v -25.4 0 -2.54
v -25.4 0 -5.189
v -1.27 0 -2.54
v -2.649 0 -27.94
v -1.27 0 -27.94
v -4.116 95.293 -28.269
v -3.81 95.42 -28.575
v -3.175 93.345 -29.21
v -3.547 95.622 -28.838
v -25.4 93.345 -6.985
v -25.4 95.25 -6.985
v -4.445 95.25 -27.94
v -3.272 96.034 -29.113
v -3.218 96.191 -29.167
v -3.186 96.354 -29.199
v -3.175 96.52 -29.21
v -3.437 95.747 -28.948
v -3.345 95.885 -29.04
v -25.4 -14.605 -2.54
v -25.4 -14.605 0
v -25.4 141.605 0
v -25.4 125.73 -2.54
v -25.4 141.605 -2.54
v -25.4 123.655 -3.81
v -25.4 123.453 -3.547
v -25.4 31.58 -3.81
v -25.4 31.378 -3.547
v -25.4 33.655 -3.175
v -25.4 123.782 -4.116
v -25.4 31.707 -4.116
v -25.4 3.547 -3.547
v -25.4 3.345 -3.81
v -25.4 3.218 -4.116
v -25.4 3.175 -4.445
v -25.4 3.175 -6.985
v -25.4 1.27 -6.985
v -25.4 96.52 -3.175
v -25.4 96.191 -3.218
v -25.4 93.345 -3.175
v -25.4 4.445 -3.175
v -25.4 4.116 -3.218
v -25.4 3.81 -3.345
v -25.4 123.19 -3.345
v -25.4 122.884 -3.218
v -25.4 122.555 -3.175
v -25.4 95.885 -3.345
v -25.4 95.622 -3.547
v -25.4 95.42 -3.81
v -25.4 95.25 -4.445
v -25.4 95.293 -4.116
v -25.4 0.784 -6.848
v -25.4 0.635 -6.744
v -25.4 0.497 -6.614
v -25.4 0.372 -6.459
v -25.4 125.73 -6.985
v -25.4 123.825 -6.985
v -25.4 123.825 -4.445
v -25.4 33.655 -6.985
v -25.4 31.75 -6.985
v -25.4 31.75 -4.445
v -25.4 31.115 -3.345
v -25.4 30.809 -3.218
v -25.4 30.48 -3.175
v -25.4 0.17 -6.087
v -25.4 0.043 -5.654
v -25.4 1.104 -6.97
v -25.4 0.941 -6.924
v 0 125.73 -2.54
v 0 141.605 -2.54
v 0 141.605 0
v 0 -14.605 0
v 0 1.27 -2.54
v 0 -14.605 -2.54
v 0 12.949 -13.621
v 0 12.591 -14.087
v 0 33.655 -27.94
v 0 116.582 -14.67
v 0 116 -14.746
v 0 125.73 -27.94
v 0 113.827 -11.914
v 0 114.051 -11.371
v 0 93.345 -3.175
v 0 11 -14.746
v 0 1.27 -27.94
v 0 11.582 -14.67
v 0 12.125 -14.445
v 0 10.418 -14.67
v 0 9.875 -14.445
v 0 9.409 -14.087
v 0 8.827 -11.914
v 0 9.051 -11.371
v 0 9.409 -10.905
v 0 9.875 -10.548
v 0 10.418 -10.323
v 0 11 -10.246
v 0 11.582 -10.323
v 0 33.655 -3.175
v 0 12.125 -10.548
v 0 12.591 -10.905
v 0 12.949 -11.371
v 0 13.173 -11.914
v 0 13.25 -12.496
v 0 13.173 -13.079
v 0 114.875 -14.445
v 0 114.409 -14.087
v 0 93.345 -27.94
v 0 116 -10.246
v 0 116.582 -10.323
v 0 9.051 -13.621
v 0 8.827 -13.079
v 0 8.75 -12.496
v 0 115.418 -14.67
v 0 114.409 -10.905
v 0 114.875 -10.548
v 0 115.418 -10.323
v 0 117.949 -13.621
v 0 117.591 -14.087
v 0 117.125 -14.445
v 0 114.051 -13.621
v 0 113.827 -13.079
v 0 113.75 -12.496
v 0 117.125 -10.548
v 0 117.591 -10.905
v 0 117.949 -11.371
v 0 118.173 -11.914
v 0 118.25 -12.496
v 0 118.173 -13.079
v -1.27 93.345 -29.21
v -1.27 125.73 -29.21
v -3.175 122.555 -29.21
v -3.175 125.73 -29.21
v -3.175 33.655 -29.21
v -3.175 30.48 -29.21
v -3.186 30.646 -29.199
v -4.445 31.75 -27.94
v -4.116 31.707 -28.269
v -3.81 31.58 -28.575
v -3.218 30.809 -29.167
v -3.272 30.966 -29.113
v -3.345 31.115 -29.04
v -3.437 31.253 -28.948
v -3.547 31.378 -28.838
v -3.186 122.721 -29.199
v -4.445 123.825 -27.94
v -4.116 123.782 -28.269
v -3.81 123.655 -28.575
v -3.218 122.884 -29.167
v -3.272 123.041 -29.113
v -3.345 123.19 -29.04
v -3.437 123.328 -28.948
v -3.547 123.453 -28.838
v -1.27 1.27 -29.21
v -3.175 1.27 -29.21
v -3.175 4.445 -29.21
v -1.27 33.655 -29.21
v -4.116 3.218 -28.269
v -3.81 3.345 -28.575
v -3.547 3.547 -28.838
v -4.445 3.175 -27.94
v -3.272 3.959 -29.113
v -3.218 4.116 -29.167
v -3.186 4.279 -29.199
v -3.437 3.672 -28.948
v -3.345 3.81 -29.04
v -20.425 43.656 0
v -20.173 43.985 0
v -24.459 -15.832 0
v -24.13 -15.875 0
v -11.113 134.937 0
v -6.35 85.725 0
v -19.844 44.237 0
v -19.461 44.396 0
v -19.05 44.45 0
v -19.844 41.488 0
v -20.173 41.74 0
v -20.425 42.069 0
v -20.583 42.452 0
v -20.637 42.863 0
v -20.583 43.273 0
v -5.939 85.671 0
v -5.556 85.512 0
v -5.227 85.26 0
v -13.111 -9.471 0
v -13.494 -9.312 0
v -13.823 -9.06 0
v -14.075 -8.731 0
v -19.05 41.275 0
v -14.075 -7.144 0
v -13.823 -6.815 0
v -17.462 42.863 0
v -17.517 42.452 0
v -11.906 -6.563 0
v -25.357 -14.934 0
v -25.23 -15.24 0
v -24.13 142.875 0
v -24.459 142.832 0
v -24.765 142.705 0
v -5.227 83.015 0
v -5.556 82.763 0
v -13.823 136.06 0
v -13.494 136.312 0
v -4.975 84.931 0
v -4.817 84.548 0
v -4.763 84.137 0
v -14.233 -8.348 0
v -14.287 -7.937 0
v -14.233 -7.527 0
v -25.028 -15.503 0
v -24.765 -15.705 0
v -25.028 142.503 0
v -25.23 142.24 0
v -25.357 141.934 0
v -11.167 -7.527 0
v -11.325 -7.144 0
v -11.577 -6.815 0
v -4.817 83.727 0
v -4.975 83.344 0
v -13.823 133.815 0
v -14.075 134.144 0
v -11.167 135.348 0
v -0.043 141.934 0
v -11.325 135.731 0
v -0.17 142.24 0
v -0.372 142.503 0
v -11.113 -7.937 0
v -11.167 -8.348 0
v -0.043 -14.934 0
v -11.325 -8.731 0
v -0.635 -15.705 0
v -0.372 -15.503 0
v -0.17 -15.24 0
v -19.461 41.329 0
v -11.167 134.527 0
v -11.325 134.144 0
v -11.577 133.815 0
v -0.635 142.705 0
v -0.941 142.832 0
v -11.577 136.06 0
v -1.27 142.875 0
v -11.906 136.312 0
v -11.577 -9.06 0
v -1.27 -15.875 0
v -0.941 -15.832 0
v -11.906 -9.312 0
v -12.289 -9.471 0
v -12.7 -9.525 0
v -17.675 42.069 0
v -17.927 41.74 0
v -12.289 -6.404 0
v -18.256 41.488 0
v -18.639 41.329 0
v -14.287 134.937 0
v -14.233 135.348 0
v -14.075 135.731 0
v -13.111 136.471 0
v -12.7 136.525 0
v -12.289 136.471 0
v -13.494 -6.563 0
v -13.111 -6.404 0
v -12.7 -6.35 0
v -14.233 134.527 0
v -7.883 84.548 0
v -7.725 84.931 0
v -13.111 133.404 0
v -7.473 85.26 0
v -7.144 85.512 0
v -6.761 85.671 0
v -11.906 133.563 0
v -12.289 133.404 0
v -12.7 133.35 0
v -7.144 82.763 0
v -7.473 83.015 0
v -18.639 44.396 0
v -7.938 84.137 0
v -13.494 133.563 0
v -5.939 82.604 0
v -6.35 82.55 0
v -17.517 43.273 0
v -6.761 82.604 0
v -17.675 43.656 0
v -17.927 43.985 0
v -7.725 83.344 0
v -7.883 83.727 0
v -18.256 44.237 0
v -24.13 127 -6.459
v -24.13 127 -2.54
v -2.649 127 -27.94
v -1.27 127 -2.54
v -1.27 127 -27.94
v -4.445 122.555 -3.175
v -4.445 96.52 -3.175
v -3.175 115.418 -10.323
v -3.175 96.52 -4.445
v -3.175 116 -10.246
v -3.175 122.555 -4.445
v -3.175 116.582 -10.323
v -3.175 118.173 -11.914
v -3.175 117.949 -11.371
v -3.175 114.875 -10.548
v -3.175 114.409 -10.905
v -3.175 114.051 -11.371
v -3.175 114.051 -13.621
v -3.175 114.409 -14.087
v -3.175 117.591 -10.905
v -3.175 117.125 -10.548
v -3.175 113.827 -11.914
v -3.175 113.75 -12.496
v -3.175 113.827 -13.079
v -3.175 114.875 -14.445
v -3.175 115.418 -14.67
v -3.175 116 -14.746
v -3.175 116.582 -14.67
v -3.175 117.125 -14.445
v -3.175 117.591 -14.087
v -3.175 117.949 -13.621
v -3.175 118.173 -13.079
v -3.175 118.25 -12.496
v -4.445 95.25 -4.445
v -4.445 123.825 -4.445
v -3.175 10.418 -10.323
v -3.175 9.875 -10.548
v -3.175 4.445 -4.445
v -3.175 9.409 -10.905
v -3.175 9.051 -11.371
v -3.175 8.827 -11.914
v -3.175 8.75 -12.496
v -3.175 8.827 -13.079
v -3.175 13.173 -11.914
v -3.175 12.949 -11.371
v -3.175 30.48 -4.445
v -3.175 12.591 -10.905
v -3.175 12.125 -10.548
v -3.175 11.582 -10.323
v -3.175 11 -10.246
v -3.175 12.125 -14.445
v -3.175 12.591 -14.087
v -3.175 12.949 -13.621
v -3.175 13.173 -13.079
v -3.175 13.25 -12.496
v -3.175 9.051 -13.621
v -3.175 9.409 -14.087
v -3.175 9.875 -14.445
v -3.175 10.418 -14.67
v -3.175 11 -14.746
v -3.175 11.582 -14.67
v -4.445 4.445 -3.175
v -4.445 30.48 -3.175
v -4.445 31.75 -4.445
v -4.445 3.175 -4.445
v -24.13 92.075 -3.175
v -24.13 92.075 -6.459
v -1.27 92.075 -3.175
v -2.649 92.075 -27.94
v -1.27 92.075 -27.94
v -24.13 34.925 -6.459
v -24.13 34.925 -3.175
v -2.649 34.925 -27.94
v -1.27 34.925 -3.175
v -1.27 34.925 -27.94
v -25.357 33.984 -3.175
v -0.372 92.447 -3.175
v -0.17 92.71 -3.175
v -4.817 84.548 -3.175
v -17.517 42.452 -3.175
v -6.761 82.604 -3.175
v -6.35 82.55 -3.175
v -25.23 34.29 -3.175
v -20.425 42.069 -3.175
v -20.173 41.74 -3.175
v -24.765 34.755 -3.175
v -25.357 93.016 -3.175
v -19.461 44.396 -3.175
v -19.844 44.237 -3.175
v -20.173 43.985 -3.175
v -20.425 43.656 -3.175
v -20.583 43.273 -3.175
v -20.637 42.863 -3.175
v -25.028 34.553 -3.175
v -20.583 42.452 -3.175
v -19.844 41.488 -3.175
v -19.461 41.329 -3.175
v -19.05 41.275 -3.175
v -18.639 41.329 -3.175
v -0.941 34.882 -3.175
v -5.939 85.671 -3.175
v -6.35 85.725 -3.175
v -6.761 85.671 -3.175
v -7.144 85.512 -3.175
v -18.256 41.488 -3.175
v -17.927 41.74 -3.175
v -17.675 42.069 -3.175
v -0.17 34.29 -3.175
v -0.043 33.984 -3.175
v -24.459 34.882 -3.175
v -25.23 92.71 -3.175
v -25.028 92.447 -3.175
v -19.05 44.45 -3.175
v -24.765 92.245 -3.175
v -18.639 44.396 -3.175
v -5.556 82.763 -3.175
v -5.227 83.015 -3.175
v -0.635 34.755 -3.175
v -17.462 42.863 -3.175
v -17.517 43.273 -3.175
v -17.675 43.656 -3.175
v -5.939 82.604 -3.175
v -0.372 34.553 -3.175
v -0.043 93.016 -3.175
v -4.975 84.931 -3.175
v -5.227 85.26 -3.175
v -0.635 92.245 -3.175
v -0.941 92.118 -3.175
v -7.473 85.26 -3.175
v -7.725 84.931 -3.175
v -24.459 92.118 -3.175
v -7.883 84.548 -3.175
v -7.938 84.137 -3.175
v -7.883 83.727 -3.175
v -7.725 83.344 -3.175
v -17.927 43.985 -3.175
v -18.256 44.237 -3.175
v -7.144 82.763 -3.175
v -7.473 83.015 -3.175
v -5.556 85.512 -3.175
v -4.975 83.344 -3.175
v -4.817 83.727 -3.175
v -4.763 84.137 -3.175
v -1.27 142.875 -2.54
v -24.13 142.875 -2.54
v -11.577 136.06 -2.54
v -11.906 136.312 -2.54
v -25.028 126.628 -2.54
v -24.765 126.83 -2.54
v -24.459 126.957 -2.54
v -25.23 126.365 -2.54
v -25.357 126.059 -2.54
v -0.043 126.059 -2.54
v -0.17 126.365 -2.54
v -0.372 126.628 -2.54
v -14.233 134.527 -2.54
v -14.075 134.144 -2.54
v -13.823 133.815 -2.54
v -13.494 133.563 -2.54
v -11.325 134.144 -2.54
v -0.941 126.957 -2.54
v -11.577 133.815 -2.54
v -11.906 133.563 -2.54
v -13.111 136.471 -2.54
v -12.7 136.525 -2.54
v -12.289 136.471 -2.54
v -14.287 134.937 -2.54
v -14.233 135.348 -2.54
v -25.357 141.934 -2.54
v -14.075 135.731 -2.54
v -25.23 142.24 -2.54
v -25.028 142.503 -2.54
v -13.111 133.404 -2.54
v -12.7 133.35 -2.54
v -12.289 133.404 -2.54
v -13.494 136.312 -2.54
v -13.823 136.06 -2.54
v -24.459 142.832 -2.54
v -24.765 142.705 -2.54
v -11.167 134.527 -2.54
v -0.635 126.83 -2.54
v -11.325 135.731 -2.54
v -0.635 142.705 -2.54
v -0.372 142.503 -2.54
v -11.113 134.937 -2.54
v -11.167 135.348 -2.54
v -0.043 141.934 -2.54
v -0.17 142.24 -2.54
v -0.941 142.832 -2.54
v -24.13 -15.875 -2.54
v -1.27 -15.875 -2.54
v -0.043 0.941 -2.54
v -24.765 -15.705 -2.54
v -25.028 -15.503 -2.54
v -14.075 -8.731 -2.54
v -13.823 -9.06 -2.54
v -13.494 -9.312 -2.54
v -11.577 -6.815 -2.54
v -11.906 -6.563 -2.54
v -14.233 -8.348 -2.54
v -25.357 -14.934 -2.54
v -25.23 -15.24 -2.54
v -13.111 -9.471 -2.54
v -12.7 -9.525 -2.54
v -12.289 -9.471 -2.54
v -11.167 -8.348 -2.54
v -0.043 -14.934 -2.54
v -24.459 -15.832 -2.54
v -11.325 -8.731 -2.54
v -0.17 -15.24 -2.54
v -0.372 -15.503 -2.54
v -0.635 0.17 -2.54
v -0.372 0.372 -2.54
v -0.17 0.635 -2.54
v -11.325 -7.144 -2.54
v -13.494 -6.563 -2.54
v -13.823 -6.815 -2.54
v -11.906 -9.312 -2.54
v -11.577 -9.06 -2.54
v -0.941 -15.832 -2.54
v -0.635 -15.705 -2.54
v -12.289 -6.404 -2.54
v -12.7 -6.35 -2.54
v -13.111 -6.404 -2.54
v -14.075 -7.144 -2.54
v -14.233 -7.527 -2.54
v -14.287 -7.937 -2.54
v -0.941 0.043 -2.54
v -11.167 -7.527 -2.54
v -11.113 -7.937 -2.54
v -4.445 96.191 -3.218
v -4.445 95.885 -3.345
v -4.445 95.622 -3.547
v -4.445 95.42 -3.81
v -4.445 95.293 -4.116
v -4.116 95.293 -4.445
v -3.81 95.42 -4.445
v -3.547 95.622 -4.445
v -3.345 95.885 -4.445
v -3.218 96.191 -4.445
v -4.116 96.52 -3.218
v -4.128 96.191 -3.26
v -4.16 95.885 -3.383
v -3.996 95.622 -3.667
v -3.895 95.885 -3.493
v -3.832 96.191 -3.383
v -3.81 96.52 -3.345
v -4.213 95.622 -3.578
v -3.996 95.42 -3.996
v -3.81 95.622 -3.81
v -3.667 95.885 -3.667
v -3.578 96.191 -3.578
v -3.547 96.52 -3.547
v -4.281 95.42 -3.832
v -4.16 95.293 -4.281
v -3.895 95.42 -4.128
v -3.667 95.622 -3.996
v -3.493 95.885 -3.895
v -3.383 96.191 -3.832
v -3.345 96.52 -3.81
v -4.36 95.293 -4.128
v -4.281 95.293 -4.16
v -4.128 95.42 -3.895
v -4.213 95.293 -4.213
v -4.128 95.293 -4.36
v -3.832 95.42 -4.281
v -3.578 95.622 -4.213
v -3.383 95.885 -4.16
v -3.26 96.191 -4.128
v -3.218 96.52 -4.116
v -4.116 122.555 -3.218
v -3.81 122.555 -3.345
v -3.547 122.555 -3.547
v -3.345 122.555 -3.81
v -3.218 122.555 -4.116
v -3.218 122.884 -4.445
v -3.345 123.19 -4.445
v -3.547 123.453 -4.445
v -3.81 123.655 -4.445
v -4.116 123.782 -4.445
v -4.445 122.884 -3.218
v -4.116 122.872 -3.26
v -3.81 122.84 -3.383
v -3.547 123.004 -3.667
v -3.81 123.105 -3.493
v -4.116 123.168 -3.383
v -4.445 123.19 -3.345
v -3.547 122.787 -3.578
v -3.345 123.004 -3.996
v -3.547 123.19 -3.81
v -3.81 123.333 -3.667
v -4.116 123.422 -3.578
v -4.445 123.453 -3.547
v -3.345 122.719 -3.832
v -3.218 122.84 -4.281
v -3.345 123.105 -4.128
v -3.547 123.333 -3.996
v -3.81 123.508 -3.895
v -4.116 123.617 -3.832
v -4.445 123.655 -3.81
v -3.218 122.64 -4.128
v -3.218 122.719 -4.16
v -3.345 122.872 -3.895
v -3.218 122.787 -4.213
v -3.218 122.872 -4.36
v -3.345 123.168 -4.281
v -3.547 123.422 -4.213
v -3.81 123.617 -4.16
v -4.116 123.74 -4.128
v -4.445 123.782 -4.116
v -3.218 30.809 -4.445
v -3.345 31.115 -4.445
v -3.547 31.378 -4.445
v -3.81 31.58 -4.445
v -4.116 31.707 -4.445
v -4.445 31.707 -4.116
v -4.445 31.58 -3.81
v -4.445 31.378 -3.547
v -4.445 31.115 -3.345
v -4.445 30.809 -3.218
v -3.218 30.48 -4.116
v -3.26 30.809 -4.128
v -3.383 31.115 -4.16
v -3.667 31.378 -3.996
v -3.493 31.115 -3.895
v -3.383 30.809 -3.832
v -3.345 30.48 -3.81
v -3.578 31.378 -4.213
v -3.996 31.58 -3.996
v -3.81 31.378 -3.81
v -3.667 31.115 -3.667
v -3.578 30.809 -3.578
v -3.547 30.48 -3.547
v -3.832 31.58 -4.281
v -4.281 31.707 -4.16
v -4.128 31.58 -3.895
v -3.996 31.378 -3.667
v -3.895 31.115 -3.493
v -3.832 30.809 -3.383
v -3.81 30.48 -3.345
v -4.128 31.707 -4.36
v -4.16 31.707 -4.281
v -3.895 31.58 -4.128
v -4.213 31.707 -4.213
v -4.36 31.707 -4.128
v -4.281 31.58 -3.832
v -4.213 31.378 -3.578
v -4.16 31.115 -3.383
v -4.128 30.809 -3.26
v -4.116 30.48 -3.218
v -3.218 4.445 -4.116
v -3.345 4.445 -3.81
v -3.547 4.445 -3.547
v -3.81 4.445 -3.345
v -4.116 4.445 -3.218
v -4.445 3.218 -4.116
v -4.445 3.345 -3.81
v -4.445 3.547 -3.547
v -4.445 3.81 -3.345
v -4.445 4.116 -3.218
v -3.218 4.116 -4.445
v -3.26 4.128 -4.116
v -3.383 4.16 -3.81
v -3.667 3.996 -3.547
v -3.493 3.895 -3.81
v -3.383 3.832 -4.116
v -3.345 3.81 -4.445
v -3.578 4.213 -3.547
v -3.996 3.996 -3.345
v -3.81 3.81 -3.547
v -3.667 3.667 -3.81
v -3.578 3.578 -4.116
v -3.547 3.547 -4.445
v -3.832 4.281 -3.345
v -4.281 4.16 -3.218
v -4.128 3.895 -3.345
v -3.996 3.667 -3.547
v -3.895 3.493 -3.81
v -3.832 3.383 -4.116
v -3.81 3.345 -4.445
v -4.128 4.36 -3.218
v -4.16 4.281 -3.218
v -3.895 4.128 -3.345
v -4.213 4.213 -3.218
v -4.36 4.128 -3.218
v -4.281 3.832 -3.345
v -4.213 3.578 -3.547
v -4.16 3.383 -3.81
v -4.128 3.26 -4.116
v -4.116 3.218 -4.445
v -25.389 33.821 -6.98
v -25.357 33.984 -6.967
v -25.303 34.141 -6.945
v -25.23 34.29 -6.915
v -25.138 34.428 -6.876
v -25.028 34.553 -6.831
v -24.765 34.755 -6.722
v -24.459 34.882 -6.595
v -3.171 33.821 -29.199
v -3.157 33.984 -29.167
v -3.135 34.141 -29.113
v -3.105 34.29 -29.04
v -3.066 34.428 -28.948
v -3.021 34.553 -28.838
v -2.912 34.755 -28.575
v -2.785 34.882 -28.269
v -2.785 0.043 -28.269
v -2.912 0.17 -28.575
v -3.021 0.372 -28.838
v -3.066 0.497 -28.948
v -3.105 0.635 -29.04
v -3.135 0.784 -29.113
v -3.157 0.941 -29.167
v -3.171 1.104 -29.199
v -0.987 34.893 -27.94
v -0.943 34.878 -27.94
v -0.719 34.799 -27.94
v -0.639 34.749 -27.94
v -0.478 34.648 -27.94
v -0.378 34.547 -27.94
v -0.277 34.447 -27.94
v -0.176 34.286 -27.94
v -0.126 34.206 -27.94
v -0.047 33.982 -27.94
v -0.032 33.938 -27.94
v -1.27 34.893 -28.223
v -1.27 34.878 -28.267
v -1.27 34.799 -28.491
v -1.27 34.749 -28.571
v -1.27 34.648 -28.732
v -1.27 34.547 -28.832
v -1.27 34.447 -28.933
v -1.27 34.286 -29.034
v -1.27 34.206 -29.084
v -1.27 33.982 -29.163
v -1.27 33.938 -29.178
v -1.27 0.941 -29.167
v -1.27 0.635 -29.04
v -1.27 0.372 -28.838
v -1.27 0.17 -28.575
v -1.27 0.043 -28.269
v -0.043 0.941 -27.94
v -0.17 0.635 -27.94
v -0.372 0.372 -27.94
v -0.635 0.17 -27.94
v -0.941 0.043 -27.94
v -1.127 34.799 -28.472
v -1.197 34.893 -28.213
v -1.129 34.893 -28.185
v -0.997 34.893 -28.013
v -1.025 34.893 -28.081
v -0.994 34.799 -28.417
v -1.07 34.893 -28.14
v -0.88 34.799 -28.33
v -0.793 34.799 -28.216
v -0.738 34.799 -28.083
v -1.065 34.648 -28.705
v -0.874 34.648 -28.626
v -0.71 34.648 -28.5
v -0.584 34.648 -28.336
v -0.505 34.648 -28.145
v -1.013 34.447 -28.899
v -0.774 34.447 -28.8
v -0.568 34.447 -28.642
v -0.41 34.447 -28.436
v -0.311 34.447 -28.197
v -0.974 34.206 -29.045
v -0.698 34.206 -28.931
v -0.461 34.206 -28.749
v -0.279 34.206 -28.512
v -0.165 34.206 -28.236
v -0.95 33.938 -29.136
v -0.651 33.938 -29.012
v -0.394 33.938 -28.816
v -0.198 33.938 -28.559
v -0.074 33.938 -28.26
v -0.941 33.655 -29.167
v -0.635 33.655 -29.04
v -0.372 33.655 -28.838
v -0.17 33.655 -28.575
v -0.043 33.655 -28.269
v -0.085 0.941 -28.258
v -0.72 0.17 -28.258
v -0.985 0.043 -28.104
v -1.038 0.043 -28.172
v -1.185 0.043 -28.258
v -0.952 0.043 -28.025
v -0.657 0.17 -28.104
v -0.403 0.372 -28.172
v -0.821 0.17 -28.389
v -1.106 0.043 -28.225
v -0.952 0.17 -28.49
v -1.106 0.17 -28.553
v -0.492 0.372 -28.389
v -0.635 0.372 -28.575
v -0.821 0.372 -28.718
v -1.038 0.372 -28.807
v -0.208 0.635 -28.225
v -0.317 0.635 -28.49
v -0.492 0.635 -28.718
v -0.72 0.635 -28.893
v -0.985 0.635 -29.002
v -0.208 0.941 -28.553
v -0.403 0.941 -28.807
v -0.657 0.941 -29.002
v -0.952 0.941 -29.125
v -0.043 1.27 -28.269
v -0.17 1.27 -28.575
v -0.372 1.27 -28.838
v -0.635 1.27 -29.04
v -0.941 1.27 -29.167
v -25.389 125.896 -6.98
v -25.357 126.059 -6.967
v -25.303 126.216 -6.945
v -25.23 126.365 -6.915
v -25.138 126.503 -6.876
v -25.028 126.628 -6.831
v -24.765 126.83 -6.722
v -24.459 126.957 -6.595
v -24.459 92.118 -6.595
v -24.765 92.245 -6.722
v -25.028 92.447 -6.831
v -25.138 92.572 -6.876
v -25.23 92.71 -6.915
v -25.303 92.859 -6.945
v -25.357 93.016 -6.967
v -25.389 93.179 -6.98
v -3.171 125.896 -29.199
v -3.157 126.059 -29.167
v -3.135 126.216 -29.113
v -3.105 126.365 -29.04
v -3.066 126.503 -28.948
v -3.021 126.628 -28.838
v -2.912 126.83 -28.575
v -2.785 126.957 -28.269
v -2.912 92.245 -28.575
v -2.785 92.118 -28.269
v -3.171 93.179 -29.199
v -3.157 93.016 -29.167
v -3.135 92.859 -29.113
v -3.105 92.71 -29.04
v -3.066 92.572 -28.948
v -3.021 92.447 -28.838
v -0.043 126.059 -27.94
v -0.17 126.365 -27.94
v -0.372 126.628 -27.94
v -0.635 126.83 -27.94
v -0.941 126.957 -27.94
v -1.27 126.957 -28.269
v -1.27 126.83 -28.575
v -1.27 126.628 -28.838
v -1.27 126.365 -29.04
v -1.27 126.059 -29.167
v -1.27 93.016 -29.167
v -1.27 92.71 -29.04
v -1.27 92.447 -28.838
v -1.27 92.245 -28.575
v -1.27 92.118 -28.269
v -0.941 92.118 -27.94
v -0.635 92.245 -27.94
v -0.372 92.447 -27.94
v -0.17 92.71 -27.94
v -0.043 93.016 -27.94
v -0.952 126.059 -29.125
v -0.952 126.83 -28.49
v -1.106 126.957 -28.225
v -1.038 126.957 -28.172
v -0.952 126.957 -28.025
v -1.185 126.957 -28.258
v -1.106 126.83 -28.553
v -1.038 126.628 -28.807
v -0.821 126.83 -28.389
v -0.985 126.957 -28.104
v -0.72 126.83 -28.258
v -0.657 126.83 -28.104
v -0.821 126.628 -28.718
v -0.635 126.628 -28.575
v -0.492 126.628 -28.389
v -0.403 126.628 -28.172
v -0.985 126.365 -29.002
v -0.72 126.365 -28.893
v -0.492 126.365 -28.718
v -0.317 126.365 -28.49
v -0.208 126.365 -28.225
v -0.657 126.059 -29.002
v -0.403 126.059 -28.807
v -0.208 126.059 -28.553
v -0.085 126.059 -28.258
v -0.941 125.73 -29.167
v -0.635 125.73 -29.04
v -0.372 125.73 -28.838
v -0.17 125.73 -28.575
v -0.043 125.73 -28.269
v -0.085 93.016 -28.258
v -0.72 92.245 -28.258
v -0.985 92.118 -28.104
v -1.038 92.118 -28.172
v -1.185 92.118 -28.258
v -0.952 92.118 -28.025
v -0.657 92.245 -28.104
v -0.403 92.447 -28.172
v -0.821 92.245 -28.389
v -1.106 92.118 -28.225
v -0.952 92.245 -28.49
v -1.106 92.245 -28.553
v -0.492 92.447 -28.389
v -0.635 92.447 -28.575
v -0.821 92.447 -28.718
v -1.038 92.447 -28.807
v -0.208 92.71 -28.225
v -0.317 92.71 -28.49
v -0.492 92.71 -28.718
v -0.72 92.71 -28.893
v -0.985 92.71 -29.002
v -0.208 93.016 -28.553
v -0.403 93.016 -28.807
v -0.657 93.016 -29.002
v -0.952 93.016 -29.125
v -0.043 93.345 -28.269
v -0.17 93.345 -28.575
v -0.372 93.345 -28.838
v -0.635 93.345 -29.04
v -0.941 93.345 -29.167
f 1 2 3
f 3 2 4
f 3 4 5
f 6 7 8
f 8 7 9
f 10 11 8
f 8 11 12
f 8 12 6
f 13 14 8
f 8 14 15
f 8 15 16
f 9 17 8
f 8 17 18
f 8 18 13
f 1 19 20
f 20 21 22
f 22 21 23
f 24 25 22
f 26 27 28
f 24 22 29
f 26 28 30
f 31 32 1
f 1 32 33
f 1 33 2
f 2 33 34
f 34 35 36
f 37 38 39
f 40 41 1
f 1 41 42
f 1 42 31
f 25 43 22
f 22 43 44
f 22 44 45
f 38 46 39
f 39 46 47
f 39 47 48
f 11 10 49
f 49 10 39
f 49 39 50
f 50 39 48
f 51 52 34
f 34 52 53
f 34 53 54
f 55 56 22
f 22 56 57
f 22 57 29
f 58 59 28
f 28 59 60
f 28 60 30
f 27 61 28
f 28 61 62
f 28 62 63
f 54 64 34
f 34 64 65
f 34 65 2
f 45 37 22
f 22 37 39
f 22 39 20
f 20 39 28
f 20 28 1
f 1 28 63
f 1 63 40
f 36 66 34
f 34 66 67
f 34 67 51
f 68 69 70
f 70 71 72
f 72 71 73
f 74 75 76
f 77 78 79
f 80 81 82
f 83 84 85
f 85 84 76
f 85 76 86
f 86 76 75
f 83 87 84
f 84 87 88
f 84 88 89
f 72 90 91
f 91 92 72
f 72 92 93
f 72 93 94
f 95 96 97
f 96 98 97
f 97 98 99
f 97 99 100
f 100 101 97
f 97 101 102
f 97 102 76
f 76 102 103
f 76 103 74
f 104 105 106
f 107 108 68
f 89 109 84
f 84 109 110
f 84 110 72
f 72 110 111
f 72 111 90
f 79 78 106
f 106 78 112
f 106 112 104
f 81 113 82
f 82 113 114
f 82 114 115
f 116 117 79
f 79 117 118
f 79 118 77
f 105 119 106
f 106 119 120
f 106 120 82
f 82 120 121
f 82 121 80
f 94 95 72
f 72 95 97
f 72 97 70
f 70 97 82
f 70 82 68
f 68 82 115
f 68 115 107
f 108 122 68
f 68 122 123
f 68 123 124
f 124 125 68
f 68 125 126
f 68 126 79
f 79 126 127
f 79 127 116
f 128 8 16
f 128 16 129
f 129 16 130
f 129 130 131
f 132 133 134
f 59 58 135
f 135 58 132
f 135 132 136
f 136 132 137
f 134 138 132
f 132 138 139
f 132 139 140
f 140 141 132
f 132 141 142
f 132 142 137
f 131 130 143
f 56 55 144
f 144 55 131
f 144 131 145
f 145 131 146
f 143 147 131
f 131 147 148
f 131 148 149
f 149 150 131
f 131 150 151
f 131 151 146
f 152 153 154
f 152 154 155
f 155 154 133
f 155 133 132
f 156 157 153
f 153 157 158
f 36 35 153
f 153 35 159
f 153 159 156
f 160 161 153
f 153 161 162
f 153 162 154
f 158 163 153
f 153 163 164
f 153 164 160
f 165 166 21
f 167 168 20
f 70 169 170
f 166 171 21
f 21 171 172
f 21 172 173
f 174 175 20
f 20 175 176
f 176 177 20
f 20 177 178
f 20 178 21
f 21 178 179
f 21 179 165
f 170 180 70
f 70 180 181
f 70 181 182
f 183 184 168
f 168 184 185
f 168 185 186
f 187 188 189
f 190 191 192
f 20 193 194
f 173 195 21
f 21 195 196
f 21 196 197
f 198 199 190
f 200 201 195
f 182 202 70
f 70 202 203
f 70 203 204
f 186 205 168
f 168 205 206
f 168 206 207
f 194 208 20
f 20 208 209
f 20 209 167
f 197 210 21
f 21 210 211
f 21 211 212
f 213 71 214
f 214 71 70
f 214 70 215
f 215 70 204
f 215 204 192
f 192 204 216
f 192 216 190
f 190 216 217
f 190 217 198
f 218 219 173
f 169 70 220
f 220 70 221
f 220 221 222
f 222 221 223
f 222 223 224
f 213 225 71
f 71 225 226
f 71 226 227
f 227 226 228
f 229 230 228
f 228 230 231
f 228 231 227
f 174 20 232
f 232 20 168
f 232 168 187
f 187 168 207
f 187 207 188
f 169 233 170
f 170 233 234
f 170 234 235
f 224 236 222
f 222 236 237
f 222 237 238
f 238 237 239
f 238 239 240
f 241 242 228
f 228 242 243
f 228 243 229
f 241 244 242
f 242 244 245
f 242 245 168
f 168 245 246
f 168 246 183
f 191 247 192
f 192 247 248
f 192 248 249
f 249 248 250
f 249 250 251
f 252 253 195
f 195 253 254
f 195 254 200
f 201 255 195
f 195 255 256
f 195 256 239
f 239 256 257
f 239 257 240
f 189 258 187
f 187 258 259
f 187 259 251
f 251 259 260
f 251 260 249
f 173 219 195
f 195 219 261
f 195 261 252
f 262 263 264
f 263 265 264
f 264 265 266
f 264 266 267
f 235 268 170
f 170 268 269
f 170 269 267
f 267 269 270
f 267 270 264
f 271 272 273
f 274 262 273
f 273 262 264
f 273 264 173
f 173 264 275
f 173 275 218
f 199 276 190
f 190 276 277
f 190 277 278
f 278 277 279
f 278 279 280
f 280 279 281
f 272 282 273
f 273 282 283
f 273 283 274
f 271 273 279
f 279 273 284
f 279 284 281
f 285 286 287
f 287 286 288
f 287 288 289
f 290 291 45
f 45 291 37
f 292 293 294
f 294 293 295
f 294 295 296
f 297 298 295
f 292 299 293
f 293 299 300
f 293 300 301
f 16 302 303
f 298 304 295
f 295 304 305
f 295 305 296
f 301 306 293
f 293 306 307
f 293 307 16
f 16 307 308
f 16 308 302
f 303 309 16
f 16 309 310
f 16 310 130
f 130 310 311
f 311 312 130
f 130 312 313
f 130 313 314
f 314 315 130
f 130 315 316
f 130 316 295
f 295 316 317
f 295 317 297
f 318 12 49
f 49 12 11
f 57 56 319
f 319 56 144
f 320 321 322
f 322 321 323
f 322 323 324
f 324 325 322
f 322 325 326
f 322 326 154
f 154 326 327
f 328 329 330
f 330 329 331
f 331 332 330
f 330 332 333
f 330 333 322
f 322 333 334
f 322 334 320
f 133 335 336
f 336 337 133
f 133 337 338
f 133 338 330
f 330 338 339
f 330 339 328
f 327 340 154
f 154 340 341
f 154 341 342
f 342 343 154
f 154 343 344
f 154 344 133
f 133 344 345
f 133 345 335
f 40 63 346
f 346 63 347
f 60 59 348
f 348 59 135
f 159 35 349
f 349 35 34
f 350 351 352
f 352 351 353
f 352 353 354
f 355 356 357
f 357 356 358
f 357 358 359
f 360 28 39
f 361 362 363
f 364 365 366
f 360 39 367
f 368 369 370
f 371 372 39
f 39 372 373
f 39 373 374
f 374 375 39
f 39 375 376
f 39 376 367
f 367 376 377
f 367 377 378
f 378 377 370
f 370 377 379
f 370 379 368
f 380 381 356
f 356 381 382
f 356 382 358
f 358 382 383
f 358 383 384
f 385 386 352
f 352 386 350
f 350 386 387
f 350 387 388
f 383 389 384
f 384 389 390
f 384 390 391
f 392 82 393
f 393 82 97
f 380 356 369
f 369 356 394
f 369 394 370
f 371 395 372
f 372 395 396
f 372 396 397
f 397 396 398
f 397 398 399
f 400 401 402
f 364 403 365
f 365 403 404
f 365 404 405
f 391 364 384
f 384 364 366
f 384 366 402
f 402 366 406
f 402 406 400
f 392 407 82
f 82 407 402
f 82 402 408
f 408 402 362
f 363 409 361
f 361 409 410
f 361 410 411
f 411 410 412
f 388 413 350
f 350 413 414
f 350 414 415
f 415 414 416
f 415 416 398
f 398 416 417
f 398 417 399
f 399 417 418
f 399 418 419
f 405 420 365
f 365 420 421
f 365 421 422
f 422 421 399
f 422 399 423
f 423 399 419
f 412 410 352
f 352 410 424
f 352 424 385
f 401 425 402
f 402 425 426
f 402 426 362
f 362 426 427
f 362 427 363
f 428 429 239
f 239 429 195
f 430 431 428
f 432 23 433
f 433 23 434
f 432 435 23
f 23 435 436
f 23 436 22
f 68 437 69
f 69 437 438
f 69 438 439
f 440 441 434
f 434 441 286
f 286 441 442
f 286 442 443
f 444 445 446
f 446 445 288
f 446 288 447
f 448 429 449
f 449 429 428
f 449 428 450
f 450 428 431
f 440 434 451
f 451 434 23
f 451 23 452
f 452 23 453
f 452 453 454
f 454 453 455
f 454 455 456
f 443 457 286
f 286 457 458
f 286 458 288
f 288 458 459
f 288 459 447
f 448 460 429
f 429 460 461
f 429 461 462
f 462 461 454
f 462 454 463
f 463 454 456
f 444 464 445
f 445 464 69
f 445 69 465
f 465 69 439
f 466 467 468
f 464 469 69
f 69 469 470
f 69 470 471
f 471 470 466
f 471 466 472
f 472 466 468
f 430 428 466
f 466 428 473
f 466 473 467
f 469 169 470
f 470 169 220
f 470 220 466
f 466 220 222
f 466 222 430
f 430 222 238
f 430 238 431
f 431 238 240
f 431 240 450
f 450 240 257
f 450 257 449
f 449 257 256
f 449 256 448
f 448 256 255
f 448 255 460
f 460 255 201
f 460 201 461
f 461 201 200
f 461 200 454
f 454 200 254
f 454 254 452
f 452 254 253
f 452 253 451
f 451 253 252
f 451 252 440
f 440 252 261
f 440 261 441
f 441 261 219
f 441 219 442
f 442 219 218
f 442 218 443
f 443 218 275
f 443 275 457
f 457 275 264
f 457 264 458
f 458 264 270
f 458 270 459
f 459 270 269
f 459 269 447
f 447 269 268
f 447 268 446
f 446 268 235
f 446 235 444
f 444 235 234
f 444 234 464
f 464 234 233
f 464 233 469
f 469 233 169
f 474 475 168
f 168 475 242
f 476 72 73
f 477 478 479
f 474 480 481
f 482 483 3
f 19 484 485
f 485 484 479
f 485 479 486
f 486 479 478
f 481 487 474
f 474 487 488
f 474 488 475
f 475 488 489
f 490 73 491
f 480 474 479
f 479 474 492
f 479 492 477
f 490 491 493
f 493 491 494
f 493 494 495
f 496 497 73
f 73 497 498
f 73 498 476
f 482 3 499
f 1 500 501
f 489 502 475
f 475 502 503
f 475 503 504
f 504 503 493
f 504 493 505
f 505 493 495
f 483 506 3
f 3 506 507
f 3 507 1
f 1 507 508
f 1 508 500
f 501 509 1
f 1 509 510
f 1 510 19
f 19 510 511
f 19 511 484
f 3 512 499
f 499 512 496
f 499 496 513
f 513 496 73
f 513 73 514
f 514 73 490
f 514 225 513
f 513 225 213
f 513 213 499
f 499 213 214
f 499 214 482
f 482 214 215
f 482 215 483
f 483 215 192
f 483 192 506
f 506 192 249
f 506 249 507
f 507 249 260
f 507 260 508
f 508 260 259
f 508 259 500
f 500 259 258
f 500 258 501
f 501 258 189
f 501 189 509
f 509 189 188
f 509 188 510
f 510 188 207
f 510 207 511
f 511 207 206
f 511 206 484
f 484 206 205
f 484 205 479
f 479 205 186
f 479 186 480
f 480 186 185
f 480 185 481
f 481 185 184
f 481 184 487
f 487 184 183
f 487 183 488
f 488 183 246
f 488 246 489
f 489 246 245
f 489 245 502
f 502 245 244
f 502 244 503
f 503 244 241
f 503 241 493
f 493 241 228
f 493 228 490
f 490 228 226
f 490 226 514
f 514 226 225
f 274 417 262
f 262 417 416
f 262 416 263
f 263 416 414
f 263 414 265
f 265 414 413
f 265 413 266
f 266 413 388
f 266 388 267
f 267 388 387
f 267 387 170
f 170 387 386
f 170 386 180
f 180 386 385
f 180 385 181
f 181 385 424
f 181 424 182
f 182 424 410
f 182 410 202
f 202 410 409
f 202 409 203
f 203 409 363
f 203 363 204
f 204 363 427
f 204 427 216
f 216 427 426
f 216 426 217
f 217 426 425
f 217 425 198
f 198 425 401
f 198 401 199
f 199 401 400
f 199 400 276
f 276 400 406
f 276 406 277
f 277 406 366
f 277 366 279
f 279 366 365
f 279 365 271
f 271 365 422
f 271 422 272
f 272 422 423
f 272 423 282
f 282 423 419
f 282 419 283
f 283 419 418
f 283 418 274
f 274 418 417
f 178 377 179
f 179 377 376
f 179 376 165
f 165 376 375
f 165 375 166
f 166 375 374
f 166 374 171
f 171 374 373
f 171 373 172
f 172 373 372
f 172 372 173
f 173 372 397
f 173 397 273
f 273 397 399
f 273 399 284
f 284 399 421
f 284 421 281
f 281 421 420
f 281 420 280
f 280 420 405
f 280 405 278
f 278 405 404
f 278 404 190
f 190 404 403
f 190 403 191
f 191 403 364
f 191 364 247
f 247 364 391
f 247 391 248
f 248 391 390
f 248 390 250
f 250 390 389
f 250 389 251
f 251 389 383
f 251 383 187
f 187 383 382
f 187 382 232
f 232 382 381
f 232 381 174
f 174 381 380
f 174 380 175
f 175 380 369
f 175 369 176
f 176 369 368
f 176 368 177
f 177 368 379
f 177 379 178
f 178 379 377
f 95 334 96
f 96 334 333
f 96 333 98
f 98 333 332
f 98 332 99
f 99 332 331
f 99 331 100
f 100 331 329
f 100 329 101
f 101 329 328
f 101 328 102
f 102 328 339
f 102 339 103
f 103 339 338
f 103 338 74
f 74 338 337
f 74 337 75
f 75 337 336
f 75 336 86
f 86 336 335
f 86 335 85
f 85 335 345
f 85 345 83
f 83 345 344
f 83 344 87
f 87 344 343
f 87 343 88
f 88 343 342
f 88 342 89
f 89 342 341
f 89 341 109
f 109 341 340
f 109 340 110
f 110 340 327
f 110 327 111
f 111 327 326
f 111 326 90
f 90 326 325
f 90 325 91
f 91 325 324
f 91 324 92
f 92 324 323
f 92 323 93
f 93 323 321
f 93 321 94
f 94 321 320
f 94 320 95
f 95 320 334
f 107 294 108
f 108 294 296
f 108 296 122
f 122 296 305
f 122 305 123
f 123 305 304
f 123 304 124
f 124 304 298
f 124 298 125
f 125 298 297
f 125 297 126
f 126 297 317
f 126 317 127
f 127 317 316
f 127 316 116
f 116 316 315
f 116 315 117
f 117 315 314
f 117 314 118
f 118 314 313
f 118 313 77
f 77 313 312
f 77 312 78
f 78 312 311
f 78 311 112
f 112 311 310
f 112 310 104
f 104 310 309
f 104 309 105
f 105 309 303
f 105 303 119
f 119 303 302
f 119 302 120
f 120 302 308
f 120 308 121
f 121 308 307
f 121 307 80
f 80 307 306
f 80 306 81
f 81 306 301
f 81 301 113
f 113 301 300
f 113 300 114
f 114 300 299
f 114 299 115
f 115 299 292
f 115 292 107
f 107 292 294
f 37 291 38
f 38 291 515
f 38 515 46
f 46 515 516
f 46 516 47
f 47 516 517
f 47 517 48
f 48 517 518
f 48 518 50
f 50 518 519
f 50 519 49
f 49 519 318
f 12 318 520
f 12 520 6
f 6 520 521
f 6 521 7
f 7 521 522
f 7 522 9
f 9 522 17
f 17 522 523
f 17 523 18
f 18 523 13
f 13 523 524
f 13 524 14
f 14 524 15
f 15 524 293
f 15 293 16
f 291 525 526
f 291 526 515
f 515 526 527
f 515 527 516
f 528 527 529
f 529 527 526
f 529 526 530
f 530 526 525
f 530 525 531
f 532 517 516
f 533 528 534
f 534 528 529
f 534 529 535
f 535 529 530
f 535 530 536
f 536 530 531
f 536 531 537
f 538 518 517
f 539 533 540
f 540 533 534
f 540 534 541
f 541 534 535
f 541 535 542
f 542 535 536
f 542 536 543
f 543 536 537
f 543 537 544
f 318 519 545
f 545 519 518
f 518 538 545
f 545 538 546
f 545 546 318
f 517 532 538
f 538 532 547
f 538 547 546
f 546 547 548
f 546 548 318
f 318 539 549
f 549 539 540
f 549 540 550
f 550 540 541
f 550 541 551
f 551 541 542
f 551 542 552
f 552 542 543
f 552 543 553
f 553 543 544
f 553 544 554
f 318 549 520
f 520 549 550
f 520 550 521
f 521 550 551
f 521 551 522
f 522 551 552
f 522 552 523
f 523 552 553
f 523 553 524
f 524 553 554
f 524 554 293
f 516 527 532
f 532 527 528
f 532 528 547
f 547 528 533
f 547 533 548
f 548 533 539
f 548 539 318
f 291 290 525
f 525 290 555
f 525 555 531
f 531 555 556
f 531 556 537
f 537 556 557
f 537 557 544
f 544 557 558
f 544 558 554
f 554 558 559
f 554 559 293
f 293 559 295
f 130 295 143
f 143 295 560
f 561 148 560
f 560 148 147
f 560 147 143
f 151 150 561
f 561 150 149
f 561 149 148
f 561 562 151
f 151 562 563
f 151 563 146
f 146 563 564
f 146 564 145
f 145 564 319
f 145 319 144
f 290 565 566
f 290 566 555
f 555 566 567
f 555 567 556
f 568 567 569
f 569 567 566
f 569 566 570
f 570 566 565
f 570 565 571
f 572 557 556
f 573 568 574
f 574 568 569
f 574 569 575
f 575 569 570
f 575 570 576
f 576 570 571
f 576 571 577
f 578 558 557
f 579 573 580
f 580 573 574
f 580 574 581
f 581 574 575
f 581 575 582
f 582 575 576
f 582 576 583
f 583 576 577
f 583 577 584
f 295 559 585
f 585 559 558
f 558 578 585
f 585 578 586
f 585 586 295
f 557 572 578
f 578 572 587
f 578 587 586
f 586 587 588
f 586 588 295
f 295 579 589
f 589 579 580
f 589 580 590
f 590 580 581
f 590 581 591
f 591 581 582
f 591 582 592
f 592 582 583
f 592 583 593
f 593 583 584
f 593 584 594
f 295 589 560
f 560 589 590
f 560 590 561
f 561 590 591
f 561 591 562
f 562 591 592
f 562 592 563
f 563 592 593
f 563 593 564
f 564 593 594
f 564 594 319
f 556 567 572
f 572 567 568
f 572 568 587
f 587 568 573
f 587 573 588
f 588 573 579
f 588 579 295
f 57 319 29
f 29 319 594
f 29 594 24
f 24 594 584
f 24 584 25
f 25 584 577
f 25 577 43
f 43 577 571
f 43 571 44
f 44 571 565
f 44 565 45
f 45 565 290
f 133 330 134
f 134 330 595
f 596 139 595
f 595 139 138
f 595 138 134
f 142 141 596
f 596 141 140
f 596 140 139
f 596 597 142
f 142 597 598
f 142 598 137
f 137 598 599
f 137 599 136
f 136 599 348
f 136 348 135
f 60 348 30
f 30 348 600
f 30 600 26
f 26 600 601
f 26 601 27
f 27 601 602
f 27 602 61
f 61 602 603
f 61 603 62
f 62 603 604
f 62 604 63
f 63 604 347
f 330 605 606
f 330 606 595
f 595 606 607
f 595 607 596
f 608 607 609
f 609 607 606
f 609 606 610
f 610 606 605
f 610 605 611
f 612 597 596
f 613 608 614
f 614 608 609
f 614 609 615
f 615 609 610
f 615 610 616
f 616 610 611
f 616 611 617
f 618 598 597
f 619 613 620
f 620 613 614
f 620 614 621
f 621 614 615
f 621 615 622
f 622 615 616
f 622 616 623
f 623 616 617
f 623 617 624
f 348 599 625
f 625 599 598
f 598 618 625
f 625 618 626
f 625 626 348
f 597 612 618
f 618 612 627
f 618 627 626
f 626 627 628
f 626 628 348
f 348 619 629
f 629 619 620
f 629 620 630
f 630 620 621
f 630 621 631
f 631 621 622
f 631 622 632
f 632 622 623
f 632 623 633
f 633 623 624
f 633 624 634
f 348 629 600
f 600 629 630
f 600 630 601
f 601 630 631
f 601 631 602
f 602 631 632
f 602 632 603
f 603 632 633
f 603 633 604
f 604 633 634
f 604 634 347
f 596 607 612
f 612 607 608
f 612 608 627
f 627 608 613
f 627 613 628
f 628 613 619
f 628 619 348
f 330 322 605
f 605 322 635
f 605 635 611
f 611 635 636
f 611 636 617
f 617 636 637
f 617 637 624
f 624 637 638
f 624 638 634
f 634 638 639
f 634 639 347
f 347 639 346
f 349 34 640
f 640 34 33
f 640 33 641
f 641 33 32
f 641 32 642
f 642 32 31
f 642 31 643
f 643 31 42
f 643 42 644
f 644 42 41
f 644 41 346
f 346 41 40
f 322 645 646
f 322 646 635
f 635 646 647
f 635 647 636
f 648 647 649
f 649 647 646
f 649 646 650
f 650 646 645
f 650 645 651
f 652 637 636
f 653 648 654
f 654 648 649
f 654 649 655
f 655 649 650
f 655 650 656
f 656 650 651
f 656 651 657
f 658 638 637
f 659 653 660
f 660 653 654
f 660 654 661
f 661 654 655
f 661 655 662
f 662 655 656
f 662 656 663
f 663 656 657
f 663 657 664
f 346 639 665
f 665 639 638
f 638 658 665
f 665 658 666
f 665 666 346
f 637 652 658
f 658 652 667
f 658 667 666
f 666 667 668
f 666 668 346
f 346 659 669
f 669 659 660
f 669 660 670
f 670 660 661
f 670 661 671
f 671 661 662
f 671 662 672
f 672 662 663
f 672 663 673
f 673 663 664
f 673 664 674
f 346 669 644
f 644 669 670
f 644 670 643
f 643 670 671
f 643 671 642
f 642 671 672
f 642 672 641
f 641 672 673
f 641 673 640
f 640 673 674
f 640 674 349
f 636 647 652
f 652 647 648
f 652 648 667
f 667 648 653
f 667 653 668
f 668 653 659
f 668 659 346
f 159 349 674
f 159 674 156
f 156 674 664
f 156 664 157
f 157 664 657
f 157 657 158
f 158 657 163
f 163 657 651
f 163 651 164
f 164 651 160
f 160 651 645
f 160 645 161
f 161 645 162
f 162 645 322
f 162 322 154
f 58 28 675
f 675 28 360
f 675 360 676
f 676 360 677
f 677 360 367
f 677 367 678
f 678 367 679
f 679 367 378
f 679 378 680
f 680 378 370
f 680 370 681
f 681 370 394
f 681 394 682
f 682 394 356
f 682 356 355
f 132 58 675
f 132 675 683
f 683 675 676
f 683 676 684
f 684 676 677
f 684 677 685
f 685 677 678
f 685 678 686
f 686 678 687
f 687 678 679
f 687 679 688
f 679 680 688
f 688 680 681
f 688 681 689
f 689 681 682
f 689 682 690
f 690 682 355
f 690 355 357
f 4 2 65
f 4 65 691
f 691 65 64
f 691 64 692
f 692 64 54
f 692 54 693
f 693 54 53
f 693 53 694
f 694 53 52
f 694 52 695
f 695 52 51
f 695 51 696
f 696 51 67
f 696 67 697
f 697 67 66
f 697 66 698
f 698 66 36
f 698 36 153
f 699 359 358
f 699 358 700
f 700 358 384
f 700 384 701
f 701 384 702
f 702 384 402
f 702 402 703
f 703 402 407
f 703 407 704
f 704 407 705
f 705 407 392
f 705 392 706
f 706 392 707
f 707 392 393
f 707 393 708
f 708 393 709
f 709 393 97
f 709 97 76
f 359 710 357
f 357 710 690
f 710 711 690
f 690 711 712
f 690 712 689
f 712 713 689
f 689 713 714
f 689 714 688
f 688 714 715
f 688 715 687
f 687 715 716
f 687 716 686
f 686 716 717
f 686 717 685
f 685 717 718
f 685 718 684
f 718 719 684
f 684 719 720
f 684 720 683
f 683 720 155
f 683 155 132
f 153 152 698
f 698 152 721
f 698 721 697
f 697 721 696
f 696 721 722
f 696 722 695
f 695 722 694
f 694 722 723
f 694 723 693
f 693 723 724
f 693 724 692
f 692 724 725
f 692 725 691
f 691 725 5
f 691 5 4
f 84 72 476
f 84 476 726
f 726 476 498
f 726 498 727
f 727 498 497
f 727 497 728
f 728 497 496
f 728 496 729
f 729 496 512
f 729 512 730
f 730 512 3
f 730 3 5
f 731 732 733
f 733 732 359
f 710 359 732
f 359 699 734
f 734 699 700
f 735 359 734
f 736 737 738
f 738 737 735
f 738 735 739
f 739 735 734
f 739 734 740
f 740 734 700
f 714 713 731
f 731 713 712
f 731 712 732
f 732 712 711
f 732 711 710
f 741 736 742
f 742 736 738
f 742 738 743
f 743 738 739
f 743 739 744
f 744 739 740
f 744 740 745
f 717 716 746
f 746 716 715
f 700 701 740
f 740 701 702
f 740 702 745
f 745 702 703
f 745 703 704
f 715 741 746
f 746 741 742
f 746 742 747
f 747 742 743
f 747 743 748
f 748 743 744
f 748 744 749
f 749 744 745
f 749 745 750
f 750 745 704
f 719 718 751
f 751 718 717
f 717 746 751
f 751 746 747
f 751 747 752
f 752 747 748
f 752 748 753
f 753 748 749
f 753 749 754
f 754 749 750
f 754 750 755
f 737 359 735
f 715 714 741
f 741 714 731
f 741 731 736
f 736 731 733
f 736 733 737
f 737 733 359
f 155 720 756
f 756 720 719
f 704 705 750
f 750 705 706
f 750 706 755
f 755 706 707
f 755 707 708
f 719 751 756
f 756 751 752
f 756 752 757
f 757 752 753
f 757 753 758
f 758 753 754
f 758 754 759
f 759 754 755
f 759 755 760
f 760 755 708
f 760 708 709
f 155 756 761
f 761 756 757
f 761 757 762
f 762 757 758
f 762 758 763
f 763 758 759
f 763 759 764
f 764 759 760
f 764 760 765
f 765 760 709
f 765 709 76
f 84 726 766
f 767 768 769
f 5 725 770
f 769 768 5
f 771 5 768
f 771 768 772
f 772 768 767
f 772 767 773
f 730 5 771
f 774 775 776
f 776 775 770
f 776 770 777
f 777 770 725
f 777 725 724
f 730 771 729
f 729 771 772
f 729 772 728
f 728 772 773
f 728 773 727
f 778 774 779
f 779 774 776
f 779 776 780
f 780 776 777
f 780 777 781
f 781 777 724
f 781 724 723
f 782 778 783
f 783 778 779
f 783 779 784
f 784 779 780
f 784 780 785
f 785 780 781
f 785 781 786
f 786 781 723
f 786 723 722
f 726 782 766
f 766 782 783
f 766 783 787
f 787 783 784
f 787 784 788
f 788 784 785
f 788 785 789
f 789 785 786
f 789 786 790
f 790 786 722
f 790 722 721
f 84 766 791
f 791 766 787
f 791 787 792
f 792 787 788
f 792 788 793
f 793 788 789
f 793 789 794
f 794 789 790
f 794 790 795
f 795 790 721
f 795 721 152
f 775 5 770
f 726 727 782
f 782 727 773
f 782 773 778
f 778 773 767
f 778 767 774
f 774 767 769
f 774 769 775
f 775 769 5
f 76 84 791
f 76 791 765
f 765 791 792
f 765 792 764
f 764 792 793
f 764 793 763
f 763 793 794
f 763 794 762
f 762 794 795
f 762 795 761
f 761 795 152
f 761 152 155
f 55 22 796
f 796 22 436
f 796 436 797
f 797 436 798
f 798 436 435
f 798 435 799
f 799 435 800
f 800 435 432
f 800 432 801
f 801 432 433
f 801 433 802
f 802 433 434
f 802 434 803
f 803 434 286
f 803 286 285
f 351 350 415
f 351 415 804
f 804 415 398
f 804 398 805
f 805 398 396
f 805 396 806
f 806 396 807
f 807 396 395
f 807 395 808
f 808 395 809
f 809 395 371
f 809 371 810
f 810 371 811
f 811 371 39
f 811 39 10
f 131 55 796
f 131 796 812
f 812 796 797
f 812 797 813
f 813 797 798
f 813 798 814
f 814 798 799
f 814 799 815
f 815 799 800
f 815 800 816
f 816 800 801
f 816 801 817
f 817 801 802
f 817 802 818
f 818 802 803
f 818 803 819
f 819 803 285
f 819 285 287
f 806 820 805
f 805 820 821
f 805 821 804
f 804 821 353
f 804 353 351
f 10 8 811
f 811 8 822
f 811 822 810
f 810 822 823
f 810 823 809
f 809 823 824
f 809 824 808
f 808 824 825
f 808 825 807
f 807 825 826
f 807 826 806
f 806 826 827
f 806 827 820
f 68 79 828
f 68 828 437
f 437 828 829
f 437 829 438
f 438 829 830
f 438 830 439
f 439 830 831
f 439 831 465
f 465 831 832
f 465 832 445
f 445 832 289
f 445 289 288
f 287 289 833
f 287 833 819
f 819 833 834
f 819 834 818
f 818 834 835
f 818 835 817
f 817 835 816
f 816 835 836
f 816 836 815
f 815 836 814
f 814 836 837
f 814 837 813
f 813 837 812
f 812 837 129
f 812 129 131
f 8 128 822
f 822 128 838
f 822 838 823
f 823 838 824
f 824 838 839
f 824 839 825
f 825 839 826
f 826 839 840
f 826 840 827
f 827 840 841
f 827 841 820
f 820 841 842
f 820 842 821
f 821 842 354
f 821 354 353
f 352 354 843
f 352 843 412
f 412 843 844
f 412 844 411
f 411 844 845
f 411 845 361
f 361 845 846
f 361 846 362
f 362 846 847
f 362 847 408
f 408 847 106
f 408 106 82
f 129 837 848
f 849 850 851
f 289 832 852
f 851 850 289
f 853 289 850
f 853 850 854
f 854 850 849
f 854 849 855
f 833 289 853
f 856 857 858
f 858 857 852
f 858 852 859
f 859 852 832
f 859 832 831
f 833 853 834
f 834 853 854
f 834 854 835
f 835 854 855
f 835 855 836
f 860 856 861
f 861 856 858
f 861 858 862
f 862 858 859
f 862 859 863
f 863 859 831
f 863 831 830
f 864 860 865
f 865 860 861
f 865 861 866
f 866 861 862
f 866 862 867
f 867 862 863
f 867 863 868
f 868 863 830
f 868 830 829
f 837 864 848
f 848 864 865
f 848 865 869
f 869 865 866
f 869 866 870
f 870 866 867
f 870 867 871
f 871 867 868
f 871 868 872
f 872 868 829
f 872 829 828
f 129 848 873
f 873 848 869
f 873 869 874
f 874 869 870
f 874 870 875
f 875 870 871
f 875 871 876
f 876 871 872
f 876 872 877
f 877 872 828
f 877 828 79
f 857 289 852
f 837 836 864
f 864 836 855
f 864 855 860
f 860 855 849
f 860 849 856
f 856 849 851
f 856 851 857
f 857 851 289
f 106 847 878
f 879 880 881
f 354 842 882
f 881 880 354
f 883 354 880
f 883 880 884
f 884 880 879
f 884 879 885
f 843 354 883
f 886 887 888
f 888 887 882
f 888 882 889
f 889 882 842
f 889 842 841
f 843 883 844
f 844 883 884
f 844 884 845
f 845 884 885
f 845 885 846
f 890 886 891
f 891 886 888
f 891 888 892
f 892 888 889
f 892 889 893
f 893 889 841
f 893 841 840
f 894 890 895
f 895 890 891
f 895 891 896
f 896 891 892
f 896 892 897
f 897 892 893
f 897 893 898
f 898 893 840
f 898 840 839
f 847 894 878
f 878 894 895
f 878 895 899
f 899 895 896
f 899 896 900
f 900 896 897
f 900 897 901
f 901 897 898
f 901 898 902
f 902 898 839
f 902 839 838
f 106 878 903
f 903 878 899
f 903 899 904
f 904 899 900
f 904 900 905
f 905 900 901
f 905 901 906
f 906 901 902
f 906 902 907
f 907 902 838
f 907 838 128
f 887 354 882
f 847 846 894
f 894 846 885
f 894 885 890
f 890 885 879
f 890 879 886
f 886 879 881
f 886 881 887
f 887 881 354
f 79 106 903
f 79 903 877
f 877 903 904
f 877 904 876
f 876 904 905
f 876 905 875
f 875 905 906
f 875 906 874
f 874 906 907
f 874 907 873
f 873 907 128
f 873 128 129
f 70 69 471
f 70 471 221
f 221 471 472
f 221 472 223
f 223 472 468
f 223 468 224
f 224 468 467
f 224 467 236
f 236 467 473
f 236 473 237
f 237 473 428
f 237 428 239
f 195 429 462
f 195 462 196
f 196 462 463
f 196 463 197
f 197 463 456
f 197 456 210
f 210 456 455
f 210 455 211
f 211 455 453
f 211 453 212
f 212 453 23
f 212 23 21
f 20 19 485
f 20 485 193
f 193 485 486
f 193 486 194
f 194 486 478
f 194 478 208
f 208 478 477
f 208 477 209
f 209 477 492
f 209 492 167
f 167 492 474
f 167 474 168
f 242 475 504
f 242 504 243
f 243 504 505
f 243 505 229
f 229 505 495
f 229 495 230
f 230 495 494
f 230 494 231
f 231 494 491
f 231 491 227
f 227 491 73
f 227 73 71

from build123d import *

# Parameters (mm, degrees)
BOSS_EXTRUDE1_DEPTH     = 127
CUT_EXTRUDE1_START      = -31.75
CUT_EXTRUDE1_DEPTH      = 28.575
CUT_EXTRUDE2_START      = 31.75
CUT_EXTRUDE2_DEPTH      = 28.575
SKETCH3_W               = 25.4
SKETCH3_H               = 50.8
CUT_EXTRUDE4_DEPTH      = 28.575
SKETCH6_W               = 25.4
SKETCH6_H               = 15.875
SKETCH6_R               = 1.5875
BOSS_EXTRUDE2_DEPTH     = 2.54
CUT_EXTRUDE6_DEPTH      = 148.432177119
CUT_EXTRUDE6_DEPTH_BACK = 148.432177119
SKETCH5_R               = 1.5875
SKETCH7_R               = 2.25
CUT_EXTRUDE7_DEPTH      = 148.514203892
FILLET1_R               = 1.27


with BuildPart() as part:
    # Sketch1 → Boss-Extrude1 (new body)
    with BuildSketch(Plane(origin=(0, 0, 0), x_dir=(1, 0, 0), z_dir=(0, 1, 0))):
        Polygon((0, 0), (-25.4, 0), (-25.4, 6.985), (-3.175, 29.21), (0, 29.21), align=None)
    extrude(amount=BOSS_EXTRUDE1_DEPTH)

    # Sketch2 → Cut-Extrude1 (cut)
    with BuildSketch(Plane(origin=(0, 63.5, 0), x_dir=(-1, 0, 0), z_dir=(0, -1, 0)).offset(CUT_EXTRUDE1_START)):
        Polygon((25.4, 6.985), (3.175, 29.21), (3.175, 3.175), (25.4, 3.175), align=None)
    extrude(amount=-CUT_EXTRUDE1_DEPTH, mode=Mode.SUBTRACT)

    # Sketch2<2> → Cut-Extrude2 (cut)
    with BuildSketch(Plane(origin=(0, 63.5, 0), x_dir=(-1, 0, 0), z_dir=(0, -1, 0)).offset(CUT_EXTRUDE2_START)):
        Polygon((25.4, 6.985), (3.175, 29.21), (3.175, 3.175), (25.4, 3.175), align=None)
    extrude(amount=CUT_EXTRUDE2_DEPTH, mode=Mode.SUBTRACT)

    # Sketch3 → Cut-Extrude4 (cut, symmetric)
    with BuildSketch(Plane(origin=(0, 63.5, 0), x_dir=(-1, 0, 0), z_dir=(0, -1, 0))):
        with Locations((12.7, 28.575)):
            Rectangle(SKETCH3_W, SKETCH3_H)
    extrude(amount=CUT_EXTRUDE4_DEPTH, both=True, mode=Mode.SUBTRACT)

    # Sketch6 → Boss-Extrude2 (add)
    # profile 1 of 2: a face of its own
    with BuildSketch(Plane.XY):
        with Locations((-12.7, 134.9375)):
            Rectangle(SKETCH6_W, SKETCH6_H)
        with Locations((-12.7, 134.9375)):
            Circle(SKETCH6_R, mode=Mode.SUBTRACT)
    # profile 2 of 2: a face of its own
    with BuildSketch(Plane.XY):
        with Locations((-12.7, -7.9375)):
            Rectangle(SKETCH6_W, SKETCH6_H)
        with Locations(Location((-12.7, -7.9375, 0), (0, 0, 180))):
            Circle(SKETCH6_R, mode=Mode.SUBTRACT)
    extrude(amount=-BOSS_EXTRUDE2_DEPTH)

    # Sketch5 → Cut-Extrude6 (cut, two sides: drawn at the far end of the back side and taken through both)
    with BuildSketch(Plane(origin=(0, 0, -3.175), x_dir=(-1, 0, 0), z_dir=(0, 0, -1)).offset(-CUT_EXTRUDE6_DEPTH_BACK)):
        with Locations((6.35, 84.1375)):
            Circle(SKETCH5_R)
        with Locations((19.05, 42.8625)):
            Circle(SKETCH5_R)
    extrude(amount=CUT_EXTRUDE6_DEPTH + CUT_EXTRUDE6_DEPTH_BACK, mode=Mode.SUBTRACT)

    # Sketch7 → Cut-Extrude7 (cut, through all)
    with BuildSketch(Plane.ZY.offset(3.175)):
        with Locations((-12.49625182, 11)):
            Circle(SKETCH7_R)
        with Locations((-12.49625182, 116)):
            Circle(SKETCH7_R)
    extrude(amount=-CUT_EXTRUDE7_DEPTH, mode=Mode.SUBTRACT)

    # Fillet1
    fillet1_edges = [part.edges().sort_by_distance(p)[0] for p in [
        (-14.2875, 127, -18.0975),
        (-25.4, 127, -4.7625),
        (-3.175, 109.5375, -3.175),
        (-3.175, 95.25, -16.1925),
        (-14.2875, 95.25, -3.175),
        (-14.2875, 123.825, -3.175),
        (-3.175, 123.825, -16.1925),
        (-3.175, 31.75, -16.1925),
        (-3.175, 17.4625, -3.175),
        (-14.2875, 31.75, -3.175),
        (-3.175, 3.175, -16.1925),
        (-14.2875, 3.175, -3.175),
        (0, 17.4625, -29.21),
        (-1.5875, 34.925, -29.21),
        (-1.5875, 92.075, -29.21),
        (-25.4, 92.075, -5.08),
        (0, 92.075, -16.1925),
        (-25.4, 34.925, -5.08),
        (-14.2875, 34.925, -18.0975),
        (0, 34.925, -16.1925),
        (-14.2875, 92.075, -18.0975),
        (0, 127, -15.875),
        (-14.2875, 0, -18.0975),
        (0, 142.875, -1.27),
        (-25.4, 142.875, -1.27),
        (-1.5875, 0, -29.21),
        (0, 0, -15.875),
        (0, -15.875, -1.27),
        (-25.4, -15.875, -1.27),
        (-1.5875, 127, -29.21),
        (0, 109.5375, -29.21),
    ]]
    fillet(fillet1_edges, radius=FILLET1_R)


solid = part.part
